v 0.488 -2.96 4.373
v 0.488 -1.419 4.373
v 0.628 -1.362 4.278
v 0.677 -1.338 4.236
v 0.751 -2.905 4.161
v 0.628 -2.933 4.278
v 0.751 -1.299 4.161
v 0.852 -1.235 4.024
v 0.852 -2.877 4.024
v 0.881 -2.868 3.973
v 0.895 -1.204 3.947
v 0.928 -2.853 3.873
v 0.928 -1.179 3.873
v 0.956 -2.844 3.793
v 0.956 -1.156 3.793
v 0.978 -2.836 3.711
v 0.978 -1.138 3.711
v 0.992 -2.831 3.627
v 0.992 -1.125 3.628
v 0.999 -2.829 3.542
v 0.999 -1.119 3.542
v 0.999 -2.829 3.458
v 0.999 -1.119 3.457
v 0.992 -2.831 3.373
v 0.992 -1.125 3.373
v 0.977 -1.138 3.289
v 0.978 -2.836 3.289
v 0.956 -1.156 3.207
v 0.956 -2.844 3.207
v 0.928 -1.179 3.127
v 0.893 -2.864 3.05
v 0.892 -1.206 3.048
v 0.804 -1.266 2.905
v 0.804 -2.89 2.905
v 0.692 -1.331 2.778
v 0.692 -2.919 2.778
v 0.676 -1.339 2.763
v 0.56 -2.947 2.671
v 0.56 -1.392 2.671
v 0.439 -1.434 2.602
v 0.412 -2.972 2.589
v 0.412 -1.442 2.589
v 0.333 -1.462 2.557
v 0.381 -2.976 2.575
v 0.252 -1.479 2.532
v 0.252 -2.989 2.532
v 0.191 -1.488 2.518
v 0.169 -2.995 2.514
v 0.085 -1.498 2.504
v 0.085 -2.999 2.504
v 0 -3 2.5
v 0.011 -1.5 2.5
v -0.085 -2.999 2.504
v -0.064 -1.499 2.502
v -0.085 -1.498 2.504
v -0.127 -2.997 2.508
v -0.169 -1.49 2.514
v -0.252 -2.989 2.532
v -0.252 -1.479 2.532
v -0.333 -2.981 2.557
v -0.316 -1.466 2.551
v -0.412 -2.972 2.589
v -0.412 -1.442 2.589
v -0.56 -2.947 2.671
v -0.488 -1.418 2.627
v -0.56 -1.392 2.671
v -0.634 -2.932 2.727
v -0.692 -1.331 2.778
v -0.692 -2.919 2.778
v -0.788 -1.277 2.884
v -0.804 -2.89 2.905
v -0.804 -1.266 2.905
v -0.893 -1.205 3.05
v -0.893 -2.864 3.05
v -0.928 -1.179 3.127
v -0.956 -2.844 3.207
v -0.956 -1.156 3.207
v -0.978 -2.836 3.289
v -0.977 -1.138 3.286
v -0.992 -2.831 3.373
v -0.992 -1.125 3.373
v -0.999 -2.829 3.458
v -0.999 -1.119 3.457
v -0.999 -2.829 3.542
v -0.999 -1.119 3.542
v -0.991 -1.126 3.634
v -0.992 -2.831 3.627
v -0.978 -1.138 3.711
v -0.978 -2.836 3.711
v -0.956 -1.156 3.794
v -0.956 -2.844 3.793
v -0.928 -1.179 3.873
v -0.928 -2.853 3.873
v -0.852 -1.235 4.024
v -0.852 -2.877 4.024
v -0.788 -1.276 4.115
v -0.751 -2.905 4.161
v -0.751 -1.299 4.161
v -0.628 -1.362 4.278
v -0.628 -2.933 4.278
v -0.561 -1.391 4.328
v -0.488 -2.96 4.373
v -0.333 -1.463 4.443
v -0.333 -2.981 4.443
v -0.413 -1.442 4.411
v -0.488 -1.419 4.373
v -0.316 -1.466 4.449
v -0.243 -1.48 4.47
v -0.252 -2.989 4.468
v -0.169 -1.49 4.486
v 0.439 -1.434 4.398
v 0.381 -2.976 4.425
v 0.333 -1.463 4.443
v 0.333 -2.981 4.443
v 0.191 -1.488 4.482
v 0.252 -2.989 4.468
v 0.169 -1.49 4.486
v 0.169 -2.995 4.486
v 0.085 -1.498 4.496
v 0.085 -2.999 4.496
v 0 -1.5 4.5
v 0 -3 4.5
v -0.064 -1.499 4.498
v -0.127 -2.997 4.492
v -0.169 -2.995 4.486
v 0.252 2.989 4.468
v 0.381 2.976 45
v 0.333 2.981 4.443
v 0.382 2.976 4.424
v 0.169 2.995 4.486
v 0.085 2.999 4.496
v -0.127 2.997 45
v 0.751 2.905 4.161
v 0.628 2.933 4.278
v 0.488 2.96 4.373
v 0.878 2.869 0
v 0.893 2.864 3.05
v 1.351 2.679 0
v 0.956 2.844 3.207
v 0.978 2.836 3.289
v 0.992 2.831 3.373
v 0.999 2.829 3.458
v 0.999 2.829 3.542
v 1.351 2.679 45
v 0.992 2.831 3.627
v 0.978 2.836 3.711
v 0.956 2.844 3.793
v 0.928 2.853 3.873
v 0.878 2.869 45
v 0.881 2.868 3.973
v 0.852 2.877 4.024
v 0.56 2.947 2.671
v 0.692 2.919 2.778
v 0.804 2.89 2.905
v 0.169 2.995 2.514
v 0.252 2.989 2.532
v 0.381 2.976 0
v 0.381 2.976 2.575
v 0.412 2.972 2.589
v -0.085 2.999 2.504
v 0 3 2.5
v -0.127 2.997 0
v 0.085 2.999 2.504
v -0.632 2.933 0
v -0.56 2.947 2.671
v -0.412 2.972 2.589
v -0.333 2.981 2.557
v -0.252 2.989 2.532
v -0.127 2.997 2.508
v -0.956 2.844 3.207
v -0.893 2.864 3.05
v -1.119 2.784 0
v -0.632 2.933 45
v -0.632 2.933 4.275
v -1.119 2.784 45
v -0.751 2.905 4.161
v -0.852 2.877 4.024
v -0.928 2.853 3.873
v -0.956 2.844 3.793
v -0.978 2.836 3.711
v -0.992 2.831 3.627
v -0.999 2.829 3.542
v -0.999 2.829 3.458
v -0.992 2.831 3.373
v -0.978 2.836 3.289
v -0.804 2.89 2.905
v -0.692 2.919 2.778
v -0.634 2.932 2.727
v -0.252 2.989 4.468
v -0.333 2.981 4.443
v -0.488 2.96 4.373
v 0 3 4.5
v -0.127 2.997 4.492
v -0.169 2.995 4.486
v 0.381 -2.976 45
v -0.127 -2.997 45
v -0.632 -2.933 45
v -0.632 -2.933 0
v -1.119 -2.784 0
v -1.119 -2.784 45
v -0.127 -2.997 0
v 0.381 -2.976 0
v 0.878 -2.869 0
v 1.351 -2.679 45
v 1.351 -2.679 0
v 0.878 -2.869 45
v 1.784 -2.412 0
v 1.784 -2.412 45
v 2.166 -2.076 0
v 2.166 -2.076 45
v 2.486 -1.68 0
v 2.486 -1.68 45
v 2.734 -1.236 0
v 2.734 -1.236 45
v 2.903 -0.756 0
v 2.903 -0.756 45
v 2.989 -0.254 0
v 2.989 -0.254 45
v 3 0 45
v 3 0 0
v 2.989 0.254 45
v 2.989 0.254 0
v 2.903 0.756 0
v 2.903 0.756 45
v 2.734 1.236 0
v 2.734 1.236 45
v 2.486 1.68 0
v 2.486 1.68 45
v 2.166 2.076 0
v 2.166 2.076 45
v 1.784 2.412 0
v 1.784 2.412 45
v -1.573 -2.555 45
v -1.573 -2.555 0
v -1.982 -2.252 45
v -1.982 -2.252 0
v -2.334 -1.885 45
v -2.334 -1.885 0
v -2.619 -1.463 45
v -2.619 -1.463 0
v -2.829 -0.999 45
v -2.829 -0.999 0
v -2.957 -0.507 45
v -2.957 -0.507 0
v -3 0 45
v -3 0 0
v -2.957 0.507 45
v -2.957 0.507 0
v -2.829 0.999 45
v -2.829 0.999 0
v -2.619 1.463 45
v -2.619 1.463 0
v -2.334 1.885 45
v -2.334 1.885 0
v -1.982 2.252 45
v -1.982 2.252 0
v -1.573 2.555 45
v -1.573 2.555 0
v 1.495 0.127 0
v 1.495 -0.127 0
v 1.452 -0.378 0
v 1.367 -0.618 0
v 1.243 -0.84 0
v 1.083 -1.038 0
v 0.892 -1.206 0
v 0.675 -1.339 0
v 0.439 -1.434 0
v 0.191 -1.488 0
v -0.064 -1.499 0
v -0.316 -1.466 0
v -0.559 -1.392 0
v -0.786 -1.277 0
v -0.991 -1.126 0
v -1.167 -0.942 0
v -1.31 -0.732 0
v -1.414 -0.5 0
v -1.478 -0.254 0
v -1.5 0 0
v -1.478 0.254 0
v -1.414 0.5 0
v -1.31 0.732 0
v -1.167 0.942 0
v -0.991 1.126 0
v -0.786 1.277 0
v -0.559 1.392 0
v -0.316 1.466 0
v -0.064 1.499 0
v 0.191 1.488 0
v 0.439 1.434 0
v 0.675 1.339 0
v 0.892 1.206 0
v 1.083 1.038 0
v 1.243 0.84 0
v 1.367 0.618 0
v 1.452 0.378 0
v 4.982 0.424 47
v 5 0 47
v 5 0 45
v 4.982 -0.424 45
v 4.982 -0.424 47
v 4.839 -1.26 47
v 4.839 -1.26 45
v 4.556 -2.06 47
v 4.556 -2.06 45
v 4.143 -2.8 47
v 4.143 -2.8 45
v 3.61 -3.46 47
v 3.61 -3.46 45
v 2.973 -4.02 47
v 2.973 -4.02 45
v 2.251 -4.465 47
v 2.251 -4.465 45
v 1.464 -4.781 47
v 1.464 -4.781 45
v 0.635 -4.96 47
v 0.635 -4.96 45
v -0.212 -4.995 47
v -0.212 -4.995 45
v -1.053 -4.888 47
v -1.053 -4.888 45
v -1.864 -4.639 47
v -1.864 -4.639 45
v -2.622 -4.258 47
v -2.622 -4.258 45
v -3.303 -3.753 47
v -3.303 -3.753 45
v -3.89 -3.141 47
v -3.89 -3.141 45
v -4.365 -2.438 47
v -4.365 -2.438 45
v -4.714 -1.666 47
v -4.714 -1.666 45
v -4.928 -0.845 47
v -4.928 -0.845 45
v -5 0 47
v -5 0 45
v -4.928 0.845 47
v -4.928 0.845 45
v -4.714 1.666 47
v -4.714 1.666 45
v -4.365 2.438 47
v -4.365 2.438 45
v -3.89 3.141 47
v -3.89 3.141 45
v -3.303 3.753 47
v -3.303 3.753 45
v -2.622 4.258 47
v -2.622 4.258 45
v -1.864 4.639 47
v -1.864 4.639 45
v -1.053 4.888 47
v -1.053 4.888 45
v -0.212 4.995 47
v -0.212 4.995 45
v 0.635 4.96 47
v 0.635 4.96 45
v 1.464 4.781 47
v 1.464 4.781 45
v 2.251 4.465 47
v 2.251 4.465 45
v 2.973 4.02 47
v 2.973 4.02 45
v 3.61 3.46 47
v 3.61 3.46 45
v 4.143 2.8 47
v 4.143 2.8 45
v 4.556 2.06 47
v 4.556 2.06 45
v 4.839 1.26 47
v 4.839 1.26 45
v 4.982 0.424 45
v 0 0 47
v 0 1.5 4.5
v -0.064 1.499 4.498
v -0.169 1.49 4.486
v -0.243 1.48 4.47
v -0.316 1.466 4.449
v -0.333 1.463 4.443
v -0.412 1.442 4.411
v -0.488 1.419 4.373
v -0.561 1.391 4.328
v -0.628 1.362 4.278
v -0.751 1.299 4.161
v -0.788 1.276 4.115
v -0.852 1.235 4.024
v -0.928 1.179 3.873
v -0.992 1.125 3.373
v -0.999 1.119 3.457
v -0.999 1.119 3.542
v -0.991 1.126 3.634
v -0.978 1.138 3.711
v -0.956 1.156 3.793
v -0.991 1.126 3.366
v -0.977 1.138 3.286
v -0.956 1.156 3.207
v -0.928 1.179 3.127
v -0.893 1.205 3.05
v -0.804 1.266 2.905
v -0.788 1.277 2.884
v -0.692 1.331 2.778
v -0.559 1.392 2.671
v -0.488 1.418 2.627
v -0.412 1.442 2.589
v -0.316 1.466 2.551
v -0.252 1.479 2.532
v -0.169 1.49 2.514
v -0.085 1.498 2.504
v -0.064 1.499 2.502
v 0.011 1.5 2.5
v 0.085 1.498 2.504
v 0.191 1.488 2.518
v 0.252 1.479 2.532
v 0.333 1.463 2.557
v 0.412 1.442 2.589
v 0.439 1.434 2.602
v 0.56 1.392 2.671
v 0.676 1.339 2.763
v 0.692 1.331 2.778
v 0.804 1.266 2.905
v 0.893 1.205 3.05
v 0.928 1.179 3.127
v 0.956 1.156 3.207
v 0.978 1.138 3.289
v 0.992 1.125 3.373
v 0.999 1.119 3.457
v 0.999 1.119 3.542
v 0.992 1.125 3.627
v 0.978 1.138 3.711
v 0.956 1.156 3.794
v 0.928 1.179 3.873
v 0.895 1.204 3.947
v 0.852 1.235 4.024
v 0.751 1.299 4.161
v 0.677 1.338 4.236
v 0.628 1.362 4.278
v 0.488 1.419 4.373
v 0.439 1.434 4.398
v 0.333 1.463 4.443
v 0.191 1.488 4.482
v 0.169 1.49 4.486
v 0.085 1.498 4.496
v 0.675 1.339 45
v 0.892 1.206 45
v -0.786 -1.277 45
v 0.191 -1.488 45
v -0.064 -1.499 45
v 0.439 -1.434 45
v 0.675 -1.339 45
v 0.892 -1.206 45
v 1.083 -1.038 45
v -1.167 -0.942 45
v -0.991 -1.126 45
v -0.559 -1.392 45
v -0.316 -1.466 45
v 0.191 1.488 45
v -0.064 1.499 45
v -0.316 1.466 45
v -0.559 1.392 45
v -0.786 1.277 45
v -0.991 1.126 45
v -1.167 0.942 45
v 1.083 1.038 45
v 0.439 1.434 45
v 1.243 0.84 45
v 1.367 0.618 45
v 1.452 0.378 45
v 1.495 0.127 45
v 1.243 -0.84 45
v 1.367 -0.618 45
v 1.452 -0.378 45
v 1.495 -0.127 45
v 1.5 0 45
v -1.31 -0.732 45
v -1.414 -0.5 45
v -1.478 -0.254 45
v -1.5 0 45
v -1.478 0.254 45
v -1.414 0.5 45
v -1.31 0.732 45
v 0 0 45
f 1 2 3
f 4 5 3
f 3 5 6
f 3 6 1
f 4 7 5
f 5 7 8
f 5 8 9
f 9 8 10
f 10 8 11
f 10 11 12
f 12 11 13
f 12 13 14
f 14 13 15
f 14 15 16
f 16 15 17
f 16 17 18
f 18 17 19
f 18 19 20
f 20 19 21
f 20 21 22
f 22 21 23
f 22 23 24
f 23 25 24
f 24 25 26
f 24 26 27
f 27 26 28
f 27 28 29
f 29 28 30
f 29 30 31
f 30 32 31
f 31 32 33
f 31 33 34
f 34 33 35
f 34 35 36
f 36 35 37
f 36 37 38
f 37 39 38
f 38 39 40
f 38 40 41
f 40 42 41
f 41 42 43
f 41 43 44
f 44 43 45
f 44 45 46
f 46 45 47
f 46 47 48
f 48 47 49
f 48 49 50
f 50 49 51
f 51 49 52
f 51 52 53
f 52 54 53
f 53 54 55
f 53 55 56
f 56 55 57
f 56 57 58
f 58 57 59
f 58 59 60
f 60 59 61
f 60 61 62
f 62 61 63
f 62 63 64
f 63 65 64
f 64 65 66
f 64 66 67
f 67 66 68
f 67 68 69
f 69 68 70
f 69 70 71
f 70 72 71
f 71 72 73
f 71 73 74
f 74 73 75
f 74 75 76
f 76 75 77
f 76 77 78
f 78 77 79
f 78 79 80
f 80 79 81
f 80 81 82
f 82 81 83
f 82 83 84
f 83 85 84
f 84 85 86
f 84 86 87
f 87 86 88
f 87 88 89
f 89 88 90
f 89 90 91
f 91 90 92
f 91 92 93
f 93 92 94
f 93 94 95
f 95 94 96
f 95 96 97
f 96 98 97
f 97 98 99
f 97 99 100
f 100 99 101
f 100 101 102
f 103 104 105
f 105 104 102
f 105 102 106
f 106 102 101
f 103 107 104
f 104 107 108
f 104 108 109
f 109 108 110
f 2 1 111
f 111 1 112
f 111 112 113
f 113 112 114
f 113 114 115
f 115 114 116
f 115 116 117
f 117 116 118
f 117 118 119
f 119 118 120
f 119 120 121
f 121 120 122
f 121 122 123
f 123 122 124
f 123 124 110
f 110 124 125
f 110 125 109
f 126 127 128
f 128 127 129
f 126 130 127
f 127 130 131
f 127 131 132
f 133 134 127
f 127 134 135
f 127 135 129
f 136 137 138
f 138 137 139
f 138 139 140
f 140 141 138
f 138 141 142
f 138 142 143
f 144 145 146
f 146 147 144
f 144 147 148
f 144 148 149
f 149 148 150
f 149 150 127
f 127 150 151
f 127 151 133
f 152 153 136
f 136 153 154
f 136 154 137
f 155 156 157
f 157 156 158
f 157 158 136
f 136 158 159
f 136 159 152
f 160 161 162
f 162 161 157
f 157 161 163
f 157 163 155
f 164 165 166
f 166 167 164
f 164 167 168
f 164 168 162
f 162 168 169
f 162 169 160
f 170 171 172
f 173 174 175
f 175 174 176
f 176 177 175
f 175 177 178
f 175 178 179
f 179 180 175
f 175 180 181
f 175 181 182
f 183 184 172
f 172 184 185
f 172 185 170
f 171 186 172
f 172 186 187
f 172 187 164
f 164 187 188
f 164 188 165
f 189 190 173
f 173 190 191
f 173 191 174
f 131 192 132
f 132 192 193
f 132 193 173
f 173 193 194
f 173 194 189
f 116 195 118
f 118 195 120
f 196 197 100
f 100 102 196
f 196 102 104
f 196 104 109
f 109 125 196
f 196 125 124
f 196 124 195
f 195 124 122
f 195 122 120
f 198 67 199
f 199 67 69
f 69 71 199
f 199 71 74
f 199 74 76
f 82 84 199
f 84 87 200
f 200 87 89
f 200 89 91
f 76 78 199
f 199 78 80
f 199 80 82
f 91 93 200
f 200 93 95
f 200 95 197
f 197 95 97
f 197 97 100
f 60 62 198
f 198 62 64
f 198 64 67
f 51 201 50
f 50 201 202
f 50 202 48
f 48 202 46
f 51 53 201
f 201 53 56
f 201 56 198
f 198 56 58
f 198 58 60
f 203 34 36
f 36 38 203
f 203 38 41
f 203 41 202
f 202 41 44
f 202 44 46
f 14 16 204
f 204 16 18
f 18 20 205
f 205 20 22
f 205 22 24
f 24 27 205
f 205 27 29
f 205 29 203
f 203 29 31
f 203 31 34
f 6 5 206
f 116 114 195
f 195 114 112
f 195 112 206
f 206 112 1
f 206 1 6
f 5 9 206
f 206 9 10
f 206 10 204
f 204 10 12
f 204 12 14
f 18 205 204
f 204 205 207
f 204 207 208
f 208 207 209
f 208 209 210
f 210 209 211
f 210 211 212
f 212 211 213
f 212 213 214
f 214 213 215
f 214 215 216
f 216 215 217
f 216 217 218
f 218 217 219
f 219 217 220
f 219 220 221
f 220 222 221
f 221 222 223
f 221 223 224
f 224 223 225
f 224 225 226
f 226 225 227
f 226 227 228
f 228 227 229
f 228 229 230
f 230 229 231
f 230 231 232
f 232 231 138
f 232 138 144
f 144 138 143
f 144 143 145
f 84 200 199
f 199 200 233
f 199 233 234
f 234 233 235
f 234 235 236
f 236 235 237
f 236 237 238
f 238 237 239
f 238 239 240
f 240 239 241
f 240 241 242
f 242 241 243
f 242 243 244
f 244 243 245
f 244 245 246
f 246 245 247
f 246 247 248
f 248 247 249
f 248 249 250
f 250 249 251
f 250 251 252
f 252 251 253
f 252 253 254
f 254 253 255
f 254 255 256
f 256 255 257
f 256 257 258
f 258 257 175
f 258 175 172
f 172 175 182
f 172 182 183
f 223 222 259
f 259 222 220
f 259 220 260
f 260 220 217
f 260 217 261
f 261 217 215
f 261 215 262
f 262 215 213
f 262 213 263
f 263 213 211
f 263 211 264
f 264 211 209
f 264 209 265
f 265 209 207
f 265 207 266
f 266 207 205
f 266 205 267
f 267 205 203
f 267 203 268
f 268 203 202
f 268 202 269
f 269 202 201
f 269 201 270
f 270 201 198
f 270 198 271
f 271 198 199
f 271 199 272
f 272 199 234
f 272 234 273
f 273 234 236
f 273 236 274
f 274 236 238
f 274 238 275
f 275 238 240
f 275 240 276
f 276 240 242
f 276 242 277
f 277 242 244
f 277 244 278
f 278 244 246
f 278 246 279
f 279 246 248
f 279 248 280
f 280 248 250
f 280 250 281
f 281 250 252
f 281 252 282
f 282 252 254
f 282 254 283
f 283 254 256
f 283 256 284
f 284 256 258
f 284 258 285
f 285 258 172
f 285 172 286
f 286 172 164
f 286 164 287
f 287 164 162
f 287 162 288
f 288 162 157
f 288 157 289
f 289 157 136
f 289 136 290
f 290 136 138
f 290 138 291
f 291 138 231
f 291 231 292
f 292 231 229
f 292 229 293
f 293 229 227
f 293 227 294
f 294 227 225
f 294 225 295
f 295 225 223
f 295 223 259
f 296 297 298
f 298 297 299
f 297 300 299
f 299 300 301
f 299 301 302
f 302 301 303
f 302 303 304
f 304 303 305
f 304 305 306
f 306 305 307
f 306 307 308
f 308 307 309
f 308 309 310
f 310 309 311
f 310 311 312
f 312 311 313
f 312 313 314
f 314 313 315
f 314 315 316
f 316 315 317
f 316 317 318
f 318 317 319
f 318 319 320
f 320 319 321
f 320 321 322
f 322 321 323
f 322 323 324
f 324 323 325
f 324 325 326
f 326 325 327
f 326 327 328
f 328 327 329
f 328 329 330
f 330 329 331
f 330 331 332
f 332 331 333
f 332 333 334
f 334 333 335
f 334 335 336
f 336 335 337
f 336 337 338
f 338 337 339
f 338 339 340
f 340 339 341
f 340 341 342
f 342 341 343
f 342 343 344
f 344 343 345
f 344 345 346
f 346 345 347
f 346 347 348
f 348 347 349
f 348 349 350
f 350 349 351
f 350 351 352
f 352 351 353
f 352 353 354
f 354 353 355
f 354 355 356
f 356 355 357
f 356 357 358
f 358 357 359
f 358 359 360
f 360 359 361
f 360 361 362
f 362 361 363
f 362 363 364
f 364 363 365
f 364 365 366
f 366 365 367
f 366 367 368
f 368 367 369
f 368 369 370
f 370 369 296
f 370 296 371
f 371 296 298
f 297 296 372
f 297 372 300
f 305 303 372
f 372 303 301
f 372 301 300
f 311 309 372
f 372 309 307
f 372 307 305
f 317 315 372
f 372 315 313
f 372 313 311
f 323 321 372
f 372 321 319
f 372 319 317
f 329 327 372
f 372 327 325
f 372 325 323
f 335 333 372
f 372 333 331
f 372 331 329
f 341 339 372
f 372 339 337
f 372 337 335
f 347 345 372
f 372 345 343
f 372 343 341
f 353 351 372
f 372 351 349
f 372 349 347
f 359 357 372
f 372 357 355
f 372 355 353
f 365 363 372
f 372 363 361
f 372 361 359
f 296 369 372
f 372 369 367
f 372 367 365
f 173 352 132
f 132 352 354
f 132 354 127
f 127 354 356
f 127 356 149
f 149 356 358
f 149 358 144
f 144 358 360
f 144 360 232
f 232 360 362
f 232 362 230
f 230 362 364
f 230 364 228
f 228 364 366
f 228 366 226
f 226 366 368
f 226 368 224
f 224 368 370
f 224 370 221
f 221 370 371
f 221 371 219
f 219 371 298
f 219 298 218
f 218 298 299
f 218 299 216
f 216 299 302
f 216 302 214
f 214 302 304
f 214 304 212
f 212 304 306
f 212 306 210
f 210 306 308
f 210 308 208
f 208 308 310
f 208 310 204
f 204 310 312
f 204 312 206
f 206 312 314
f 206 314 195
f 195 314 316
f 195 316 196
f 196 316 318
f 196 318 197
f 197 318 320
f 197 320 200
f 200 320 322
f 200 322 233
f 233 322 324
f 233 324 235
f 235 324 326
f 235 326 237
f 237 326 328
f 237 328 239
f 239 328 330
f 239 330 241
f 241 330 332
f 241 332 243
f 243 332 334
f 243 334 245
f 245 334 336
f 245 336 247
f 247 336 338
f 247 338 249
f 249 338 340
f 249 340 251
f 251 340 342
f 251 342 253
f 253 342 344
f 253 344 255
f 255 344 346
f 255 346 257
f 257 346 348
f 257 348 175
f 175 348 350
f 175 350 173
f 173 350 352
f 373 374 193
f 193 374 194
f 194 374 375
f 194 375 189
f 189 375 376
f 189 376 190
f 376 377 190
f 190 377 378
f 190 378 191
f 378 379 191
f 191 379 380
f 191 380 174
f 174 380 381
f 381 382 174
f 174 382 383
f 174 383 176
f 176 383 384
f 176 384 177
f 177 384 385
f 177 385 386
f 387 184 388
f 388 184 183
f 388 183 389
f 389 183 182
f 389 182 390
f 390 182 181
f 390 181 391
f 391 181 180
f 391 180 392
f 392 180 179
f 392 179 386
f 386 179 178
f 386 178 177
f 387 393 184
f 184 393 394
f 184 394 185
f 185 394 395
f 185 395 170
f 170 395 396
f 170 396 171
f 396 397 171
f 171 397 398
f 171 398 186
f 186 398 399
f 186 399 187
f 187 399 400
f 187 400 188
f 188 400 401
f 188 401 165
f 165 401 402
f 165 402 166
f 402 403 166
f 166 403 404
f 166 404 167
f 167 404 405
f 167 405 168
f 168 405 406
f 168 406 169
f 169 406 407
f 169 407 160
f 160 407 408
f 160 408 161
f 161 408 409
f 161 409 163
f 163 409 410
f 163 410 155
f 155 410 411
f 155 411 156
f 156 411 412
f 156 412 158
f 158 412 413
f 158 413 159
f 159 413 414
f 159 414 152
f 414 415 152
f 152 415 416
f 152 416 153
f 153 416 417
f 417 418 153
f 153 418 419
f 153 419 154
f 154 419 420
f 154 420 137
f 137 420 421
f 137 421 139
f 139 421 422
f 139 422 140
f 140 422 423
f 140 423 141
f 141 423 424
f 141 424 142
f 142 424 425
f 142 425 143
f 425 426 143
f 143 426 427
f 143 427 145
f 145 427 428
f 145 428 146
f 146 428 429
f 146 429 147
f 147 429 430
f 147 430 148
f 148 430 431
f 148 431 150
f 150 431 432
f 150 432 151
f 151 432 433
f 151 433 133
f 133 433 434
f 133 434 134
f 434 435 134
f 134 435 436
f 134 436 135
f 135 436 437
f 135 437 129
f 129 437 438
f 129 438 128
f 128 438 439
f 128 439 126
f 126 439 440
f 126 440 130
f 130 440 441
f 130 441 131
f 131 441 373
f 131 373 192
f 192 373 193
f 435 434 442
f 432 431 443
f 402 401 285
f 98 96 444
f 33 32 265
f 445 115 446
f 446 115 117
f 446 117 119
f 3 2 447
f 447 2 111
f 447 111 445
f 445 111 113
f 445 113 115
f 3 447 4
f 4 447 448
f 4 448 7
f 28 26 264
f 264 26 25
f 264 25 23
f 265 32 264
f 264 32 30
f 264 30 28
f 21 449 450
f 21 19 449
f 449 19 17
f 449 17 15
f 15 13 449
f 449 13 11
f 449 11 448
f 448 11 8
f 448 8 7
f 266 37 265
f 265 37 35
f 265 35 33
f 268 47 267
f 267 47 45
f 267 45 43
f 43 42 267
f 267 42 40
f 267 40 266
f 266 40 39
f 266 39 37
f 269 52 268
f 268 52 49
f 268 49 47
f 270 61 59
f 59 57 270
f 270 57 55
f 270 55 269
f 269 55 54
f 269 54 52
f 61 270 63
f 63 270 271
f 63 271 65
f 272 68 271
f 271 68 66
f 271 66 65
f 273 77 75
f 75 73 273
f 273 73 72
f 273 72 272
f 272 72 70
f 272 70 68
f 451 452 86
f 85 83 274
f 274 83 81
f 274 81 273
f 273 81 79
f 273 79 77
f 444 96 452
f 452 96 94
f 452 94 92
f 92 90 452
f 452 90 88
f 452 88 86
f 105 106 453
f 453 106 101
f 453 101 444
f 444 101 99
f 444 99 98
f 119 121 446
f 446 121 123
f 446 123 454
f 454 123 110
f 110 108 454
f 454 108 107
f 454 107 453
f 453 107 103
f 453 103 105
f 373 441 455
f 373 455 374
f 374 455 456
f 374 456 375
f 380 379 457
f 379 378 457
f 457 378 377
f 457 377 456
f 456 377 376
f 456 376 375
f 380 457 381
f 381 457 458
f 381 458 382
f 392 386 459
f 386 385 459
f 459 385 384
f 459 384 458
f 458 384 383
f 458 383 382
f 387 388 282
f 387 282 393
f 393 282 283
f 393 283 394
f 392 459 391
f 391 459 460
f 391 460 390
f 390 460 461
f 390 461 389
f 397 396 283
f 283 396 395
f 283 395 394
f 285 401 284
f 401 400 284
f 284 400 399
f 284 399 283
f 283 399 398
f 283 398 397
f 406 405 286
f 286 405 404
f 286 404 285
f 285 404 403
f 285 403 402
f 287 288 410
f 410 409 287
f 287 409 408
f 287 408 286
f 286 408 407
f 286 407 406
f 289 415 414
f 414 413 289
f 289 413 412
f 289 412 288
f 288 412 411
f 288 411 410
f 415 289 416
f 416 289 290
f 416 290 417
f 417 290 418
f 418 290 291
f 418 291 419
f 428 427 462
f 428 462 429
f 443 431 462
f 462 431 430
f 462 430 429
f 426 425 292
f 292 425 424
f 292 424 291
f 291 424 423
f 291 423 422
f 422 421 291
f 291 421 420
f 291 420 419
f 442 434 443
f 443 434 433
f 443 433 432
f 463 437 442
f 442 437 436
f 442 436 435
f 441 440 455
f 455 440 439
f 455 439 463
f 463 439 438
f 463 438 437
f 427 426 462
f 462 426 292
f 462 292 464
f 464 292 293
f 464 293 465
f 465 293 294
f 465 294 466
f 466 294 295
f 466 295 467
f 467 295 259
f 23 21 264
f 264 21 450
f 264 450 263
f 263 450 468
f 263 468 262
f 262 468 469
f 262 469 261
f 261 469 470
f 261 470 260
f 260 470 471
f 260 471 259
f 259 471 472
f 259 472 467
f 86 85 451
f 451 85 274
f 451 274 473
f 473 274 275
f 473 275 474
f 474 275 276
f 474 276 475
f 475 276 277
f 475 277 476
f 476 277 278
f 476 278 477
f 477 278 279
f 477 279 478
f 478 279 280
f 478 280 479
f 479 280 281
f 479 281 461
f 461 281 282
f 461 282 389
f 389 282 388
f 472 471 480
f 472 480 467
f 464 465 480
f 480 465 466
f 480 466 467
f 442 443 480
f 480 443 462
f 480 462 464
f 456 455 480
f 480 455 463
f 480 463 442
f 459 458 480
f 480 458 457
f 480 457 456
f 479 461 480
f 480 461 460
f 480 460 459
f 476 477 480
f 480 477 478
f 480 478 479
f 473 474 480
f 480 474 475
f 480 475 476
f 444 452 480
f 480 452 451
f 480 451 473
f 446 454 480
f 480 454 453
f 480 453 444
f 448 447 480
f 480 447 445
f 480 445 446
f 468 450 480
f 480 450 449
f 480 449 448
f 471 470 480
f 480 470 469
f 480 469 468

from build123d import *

# Parameters (mm, degrees)
SKETCH1_R               = 3
BOSS_EXTRUDE1_DEPTH     = 45
SKETCH2_R               = 5
BOSS_EXTRUDE2_DEPTH     = 2
CUT_EXTRUDE1_DEPTH      = 48.528938553
CUT_EXTRUDE1_DEPTH_BACK = 48.528938553
SKETCH3_R               = 1
SKETCH4_R               = 1.5
CUT_EXTRUDE2_DEPTH      = 45


with BuildPart() as part:
    # Sketch1 → Boss-Extrude1 (new body)
    with BuildSketch(Plane.XY):
        with Locations(Location((0, 0, 0), (0, 0, 180))):
            Circle(SKETCH1_R)
    extrude(amount=BOSS_EXTRUDE1_DEPTH)

    # Sketch2 → Boss-Extrude2 (add)
    with BuildSketch(Plane.XY.offset(45)):
        Circle(SKETCH2_R)
    extrude(amount=BOSS_EXTRUDE2_DEPTH)

    # Sketch3 → Cut-Extrude1 (cut, two sides: drawn at the far end of the back side and taken through both)
    with BuildSketch(Plane(origin=(0, 0, 0), x_dir=(1, 0, 0), z_dir=(0, 1, 0)).offset(-CUT_EXTRUDE1_DEPTH_BACK)):
        with Locations(Location((0, -3.5, 0), (0, 0, 270))):
            Circle(SKETCH3_R)
    extrude(amount=CUT_EXTRUDE1_DEPTH + CUT_EXTRUDE1_DEPTH_BACK, mode=Mode.SUBTRACT)

    # Sketch4 → Cut-Extrude2 (cut)
    with BuildSketch(Plane(origin=(0, 0, 0), x_dir=(-1, 0, 0), z_dir=(0, 0, -1))):
        Circle(SKETCH4_R)
    extrude(amount=-CUT_EXTRUDE2_DEPTH, mode=Mode.SUBTRACT)


solid = part.part
